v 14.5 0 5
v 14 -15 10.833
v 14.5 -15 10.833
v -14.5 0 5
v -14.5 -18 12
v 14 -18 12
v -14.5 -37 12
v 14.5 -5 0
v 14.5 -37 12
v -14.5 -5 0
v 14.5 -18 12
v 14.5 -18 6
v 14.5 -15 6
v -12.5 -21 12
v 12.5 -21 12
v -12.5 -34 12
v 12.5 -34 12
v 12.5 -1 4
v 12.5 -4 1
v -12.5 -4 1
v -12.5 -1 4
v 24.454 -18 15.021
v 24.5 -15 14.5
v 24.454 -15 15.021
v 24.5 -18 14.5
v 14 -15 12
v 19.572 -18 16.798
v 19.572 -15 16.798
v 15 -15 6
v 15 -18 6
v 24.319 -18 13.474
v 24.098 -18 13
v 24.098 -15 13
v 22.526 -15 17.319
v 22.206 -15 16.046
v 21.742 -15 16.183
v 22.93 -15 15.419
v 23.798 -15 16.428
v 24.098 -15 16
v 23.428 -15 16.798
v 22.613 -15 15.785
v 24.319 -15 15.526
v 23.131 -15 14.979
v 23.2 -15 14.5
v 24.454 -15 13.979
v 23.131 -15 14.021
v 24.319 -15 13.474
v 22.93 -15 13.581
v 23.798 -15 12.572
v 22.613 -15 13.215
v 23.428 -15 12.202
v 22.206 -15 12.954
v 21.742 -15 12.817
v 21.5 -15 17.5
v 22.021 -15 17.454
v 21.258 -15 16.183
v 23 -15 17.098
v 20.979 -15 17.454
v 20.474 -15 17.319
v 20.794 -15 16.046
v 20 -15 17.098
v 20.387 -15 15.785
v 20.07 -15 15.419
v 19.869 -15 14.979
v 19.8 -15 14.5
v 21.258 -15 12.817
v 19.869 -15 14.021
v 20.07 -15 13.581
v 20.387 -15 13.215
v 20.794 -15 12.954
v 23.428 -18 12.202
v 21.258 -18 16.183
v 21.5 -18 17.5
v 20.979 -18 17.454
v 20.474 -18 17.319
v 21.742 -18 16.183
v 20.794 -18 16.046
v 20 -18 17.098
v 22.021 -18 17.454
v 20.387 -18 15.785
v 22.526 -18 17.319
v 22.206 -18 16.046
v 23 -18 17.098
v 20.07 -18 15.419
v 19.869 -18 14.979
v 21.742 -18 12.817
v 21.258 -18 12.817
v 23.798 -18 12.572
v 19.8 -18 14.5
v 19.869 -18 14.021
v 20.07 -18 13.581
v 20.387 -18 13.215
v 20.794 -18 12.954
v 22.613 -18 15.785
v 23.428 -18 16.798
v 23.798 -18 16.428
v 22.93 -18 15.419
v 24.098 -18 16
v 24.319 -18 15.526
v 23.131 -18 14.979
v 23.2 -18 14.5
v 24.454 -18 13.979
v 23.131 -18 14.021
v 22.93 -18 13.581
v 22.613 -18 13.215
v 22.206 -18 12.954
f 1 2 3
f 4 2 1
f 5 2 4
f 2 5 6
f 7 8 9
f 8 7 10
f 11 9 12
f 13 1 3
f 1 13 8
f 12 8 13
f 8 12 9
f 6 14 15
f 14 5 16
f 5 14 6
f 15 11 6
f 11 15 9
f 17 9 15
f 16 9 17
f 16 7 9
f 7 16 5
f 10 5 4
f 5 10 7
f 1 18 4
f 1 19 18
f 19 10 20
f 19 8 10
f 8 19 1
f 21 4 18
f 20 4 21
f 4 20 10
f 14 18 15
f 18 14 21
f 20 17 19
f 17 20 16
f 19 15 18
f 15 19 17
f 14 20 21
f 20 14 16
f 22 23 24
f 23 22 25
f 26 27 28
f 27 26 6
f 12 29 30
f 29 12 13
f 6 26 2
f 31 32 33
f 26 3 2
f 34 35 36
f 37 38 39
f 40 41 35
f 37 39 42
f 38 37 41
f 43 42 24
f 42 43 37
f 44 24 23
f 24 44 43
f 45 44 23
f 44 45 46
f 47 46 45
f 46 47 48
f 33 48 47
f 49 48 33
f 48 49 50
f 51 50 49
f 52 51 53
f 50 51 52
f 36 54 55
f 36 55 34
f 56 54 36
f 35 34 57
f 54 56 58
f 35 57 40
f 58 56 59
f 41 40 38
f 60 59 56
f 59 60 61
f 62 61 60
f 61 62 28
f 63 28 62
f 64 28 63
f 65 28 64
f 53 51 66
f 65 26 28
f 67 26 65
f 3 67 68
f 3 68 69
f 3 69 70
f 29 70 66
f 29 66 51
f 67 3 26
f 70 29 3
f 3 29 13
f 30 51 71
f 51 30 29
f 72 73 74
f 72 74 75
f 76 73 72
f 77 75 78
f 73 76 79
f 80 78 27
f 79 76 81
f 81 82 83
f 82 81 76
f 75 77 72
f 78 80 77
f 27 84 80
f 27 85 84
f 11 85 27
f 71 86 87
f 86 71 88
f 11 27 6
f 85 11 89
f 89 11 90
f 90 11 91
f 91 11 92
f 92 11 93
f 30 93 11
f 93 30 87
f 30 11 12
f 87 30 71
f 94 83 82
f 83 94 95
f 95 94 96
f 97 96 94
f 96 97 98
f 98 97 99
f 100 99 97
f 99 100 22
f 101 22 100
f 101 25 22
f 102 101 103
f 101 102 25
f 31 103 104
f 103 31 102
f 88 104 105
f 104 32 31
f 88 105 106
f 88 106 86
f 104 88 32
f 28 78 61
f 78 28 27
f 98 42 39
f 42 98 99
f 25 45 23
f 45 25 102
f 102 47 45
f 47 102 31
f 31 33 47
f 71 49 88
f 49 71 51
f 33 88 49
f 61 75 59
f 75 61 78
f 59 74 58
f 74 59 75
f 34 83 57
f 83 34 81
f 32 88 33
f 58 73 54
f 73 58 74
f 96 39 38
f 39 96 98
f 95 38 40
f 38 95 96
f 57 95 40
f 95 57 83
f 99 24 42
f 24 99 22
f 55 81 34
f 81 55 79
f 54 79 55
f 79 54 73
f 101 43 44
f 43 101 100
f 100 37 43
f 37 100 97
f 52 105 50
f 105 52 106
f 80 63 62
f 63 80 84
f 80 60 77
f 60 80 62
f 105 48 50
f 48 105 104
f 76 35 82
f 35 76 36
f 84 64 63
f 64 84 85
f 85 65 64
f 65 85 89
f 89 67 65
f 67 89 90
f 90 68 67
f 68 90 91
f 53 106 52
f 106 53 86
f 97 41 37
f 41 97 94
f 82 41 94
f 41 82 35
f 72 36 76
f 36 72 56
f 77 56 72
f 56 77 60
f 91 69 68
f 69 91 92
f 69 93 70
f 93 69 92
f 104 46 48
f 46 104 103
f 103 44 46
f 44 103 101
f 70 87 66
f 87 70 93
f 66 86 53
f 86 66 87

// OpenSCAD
$fa=10; $fs=0.5;

// сопло
rotate([90,0,-90]){
    difference(){
        union(){
            linear_extrude(height = 29, center = true, convexity = 10, twist = 0)
            polygon([[0, 5], [5, 0], [37, 12], [18, 12]]);
        }
        
        union(){
            linear_extrude(height = 25, center = true, convexity = 10, twist = 0)
            polygon([[1, 4], [4, 1], [34, 12], [21, 12]]);
            
        }
        
    }
}

// ухо
difference(){
    hull(){
        translate([29/2+7, -18+1.5, 12+2.5]) rotate([90,0,0]) cylinder(r=3, h=3, center=true);
        translate([29/2, -18+1.5, 12-3]) cube([1, 3, 6], center=true);
    }
    
    translate([29/2+7, -18+1.5, 12+2.5]) rotate([90,0,0]) cylinder(r=1.7, h=3, center=true);
}
